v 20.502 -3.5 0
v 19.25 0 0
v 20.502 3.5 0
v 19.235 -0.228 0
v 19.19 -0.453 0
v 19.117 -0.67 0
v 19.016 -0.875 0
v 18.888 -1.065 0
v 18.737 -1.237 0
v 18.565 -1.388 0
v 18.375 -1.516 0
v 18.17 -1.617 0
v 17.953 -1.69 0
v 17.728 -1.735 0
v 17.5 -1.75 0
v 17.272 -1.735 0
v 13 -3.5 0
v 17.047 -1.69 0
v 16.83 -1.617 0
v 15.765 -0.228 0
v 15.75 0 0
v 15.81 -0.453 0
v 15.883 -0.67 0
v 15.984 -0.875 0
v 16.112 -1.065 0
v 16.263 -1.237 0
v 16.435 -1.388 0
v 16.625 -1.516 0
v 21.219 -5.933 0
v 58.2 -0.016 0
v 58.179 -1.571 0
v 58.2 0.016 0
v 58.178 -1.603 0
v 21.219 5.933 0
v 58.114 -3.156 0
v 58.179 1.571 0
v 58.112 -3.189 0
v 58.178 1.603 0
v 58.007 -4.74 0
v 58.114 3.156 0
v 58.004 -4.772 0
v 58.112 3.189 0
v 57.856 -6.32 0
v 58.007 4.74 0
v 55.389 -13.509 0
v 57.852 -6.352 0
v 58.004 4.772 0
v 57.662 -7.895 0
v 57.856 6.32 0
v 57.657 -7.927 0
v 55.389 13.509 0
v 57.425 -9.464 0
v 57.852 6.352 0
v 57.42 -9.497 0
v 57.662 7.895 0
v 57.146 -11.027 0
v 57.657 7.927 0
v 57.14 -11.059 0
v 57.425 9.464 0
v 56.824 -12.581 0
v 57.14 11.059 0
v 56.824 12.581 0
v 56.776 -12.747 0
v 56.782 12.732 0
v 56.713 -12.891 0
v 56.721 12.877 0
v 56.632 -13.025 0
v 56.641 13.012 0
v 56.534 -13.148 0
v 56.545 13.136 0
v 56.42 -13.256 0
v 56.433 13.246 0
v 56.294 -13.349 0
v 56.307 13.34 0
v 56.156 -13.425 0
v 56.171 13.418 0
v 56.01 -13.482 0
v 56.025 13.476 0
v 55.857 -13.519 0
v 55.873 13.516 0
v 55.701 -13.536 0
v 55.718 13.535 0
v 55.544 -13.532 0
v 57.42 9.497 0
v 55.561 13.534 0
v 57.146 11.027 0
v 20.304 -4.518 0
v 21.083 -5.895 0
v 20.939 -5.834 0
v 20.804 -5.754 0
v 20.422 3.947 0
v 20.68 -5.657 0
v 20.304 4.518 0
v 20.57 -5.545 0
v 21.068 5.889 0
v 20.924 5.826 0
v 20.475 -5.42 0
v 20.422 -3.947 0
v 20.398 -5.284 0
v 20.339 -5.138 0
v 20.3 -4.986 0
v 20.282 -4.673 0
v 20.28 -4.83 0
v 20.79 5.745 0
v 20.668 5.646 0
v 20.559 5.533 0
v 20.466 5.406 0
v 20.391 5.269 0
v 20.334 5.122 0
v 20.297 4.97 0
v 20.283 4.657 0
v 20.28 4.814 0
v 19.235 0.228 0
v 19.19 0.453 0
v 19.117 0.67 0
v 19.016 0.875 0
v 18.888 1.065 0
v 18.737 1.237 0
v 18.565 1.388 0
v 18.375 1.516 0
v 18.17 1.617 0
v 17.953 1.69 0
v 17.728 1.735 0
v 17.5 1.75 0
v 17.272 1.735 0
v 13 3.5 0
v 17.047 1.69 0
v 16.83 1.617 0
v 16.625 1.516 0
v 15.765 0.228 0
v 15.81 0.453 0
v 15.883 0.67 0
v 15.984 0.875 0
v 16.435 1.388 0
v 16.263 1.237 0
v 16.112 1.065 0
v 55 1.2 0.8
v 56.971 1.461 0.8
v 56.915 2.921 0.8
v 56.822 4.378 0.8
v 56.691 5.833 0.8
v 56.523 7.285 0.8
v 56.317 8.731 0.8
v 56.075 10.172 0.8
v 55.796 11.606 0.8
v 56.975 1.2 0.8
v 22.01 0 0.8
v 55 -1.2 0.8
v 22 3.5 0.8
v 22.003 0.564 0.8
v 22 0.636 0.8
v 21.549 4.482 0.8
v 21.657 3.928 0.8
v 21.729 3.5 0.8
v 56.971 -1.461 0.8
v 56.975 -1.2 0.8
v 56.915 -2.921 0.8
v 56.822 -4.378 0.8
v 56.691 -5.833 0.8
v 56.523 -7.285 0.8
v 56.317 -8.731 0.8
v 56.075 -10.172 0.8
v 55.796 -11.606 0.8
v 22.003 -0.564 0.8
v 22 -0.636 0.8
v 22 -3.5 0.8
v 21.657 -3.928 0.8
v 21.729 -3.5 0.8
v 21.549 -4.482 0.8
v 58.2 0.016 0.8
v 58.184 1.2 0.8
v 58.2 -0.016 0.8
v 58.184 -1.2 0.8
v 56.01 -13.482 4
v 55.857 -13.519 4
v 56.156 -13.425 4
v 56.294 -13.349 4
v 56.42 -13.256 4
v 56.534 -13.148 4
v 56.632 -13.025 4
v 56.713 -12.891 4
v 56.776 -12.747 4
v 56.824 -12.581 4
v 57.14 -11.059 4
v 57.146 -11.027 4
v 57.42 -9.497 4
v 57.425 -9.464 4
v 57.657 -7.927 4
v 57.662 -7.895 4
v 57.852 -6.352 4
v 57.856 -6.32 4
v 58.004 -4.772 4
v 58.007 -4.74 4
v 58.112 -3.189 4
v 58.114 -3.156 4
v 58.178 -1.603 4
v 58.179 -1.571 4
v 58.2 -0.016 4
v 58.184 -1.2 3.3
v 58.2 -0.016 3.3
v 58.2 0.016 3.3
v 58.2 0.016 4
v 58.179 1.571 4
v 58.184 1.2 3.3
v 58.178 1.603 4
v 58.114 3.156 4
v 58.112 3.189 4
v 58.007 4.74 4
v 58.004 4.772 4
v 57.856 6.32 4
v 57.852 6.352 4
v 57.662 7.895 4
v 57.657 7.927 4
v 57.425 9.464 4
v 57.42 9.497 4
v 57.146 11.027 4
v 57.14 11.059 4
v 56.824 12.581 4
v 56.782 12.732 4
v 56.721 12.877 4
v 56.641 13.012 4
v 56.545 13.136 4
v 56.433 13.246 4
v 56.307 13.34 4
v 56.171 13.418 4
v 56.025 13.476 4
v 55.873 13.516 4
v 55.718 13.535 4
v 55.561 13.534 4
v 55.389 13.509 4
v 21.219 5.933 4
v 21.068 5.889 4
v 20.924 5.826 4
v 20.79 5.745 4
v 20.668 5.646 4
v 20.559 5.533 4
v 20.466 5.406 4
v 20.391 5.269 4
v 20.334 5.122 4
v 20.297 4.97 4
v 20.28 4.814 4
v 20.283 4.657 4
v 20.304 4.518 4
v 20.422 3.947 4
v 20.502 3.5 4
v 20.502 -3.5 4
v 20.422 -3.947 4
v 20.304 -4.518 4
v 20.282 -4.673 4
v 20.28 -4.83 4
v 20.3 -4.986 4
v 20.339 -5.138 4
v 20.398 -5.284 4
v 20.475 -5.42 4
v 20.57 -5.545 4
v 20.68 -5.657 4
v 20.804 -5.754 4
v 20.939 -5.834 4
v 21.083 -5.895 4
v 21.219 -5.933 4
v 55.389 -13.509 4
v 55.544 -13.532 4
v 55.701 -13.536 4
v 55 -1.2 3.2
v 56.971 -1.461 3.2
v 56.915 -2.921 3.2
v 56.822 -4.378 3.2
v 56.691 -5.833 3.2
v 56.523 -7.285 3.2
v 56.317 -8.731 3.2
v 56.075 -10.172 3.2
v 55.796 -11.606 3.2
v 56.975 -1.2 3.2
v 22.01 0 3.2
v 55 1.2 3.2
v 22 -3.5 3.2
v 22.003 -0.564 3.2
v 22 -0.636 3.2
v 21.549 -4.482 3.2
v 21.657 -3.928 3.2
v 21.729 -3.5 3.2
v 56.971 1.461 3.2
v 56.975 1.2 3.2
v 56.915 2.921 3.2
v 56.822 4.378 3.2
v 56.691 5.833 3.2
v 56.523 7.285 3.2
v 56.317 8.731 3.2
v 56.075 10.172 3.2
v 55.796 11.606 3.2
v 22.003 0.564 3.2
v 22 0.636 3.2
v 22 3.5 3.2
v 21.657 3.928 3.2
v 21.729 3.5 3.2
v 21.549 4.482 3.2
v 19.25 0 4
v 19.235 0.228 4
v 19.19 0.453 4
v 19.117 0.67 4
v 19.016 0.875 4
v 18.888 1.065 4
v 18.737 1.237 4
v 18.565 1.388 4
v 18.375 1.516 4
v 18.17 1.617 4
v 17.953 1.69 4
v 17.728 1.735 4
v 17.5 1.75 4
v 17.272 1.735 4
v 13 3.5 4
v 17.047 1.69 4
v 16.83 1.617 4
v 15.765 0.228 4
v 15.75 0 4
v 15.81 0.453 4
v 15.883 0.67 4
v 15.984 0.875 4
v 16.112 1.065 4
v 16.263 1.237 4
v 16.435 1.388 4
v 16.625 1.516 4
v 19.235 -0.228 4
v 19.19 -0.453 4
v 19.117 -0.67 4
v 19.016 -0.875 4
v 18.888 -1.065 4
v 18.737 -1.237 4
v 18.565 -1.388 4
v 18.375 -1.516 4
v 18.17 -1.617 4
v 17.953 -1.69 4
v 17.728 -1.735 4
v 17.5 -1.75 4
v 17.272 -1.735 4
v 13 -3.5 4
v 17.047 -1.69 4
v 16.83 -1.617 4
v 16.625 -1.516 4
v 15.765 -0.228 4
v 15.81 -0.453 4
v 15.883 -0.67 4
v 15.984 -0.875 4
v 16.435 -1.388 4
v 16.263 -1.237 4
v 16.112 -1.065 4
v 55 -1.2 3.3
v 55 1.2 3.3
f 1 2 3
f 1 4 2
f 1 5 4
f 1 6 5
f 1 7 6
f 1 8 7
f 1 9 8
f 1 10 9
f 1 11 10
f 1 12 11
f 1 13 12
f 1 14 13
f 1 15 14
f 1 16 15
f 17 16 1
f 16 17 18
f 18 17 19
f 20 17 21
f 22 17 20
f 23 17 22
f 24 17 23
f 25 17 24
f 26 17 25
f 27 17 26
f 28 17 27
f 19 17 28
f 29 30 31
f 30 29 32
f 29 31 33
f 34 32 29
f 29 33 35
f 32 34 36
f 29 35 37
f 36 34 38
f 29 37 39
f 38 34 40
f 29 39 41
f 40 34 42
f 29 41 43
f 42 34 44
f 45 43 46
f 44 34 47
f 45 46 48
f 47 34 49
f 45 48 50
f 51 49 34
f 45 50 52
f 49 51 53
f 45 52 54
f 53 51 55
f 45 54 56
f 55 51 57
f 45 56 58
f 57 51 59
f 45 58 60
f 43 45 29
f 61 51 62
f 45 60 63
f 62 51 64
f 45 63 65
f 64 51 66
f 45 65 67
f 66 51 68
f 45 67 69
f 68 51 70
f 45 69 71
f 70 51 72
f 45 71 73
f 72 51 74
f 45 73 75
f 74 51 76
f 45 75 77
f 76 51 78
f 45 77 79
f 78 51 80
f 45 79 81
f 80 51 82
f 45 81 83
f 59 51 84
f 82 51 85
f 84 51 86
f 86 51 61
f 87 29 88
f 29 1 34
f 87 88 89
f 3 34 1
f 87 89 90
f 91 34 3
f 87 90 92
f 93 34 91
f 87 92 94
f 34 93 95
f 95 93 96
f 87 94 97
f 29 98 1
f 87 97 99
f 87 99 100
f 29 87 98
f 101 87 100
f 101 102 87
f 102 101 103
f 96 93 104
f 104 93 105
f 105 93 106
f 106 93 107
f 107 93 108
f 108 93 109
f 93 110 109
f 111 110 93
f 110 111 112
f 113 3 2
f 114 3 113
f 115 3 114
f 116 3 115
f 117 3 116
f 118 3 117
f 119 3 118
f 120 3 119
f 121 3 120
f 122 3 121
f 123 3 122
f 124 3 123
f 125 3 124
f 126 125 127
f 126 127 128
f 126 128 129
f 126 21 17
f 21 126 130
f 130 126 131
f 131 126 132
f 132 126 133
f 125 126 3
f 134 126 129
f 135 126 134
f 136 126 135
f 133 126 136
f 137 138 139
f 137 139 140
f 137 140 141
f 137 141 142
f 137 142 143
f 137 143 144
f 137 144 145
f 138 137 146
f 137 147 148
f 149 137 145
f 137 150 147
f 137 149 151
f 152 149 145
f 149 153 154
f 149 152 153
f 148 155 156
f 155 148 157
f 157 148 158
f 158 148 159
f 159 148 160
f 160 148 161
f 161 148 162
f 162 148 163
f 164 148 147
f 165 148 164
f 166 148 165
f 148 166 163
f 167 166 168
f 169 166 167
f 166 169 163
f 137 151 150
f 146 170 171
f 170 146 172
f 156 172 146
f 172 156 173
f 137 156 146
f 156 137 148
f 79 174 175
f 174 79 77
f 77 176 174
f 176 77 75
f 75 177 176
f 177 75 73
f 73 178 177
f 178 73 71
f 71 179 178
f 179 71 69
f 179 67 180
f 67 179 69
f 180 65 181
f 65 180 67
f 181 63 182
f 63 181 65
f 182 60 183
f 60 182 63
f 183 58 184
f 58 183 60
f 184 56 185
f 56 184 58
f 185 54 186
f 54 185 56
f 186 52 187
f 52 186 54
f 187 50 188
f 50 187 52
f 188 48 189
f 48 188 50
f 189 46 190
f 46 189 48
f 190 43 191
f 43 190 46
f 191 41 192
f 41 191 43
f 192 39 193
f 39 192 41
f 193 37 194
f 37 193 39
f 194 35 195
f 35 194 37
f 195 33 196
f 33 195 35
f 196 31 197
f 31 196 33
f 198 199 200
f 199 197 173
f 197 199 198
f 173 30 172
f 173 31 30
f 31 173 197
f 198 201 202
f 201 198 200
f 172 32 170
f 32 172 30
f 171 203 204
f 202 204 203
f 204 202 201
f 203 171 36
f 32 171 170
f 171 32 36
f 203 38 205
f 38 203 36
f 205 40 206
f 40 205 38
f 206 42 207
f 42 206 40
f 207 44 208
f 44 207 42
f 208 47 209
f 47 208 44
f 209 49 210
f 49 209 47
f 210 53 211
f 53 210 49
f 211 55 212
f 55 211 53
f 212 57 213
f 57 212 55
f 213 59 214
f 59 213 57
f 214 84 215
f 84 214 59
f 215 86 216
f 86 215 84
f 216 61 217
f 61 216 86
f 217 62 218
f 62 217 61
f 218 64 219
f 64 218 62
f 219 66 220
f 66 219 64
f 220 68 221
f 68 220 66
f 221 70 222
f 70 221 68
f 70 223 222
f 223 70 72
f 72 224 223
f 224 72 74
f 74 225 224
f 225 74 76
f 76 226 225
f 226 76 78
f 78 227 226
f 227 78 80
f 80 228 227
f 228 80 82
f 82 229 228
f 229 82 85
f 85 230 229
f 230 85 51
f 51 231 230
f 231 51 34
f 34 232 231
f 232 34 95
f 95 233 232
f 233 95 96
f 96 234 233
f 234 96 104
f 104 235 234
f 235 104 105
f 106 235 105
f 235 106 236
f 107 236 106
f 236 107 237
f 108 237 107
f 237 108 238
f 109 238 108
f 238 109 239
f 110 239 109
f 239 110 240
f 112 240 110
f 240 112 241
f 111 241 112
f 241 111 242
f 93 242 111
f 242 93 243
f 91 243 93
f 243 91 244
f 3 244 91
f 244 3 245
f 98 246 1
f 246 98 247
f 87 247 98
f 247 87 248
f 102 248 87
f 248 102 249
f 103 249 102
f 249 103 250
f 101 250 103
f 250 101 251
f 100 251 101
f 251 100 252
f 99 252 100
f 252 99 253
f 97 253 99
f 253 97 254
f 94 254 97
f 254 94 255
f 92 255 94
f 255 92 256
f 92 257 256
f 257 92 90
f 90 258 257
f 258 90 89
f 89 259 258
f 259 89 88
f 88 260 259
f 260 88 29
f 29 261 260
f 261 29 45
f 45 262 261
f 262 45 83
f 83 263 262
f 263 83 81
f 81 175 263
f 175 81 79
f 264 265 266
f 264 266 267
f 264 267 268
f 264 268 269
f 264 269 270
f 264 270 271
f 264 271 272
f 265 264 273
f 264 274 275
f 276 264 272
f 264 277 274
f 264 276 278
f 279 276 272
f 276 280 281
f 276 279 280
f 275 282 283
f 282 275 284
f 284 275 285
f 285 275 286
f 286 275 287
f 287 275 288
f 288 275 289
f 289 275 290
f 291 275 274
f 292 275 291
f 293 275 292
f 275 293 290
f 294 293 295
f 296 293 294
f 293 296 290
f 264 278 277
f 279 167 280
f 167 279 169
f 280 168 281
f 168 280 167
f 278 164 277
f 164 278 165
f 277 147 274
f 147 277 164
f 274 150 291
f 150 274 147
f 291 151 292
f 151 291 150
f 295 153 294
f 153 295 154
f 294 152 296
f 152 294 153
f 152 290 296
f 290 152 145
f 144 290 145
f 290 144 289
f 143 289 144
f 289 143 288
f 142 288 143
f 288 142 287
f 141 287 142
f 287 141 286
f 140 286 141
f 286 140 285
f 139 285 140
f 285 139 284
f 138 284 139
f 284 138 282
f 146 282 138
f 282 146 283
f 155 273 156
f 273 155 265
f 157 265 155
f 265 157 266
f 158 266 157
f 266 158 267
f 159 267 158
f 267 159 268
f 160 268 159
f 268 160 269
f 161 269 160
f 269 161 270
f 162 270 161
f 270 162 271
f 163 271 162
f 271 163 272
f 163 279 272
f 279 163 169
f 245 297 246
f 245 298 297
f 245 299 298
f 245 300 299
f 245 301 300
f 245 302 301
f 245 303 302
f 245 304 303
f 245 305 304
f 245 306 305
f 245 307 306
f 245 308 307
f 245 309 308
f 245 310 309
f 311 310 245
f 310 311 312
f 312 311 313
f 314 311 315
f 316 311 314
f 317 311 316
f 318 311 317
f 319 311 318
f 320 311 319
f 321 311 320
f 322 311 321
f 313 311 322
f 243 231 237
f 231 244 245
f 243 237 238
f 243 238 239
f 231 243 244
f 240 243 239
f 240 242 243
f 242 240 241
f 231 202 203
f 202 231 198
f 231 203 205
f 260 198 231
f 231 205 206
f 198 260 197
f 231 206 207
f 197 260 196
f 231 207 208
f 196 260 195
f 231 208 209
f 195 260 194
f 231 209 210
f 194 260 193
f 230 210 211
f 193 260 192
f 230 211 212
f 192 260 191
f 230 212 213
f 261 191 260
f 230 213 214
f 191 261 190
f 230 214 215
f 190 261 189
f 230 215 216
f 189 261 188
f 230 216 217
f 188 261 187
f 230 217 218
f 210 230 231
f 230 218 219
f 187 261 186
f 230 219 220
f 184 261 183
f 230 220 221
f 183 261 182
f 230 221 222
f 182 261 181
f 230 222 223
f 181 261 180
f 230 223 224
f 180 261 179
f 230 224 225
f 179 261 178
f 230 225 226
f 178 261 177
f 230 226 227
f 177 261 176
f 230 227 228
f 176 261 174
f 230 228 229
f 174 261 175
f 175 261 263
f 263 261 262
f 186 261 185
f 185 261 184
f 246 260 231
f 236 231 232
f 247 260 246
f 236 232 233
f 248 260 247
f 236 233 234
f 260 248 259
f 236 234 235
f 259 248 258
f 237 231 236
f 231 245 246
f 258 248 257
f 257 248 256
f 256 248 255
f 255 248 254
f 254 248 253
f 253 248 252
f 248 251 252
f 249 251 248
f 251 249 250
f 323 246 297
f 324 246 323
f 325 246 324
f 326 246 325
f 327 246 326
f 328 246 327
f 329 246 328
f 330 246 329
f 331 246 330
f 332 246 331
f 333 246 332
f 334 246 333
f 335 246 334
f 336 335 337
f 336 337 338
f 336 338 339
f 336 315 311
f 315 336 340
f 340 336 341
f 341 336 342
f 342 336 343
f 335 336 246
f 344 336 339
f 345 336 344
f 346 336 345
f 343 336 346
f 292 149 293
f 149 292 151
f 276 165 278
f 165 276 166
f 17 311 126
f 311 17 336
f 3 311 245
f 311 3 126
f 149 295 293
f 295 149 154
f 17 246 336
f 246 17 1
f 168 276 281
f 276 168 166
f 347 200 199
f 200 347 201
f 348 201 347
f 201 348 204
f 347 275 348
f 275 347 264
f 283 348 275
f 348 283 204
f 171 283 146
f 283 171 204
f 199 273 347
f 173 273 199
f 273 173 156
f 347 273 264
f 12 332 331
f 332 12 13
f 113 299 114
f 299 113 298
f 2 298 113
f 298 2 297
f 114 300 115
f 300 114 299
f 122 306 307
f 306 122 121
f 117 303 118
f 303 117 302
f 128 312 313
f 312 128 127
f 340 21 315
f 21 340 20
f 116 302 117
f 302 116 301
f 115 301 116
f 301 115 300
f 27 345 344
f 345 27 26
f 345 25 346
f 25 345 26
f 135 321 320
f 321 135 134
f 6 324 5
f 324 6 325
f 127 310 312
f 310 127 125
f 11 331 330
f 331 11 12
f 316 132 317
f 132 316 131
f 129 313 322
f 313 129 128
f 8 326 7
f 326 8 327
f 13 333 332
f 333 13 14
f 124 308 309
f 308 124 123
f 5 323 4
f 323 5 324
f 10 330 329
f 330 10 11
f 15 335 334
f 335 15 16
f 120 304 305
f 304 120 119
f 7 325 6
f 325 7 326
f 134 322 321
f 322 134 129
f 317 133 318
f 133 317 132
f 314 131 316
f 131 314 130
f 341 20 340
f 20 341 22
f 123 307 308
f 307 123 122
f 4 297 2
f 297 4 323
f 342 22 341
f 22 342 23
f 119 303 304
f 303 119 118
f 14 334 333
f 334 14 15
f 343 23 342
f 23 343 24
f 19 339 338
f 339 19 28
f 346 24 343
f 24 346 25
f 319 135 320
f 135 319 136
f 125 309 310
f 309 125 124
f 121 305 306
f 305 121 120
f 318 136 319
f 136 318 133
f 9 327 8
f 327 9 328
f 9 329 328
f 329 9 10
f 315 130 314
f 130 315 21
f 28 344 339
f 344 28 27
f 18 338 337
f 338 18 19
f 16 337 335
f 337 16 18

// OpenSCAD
// file: parameters.scad
// =============================================================================
// Gen-X Vernier flux-claw dual-gap AFPM — WOUND-AWARE (HARD GATE)
// Dual-rotor + vernier 8+8 Ø20 + Ø5 flux claws; evolution of Gen-U
// =============================================================================

wire_awg            = 26;
wire_od             = 0.45;
turns               = 135;
fill                = 0.70;
layers_per_face     = 2;
wind_build_axial    = layers_per_face * wire_od * fill;   // 0.63
wind_build_radial   = 3 * wire_od * fill;                 // 0.945

coil_id_r           = 22.0;
coil_od_r           = 57.0;
span_deg            = 25.0;     // 12 stations; vernier vs 16-pole equiv
former_web          = 2.4;
flange_t            = 0.80;
wall                = 1.2;
slot_w              = 2.4;
mount_hole          = 3.5;
tab_len             = 7.0;

former_bare_h       = former_web + 2 * flange_t;            // 4.0
coil_envelope_h     = former_bare_h + 2 * wind_build_axial; // 5.26

run_clear           = 0.75;
gap_spacer_h        = run_clear + wind_build_axial;         // 1.38
m2m                 = coil_envelope_h + 2 * run_clear;      // 6.76 (≤6.8)

coil_stations       = 12;
bay_r_in            = coil_id_r - 2.0 - wind_build_radial;
bay_r_out           = coil_od_r + 2.0 + wind_build_radial;
bay_span            = span_deg + 4.0;
bay_offset          = 2.0;
stator_thick        = former_bare_h;
stator_od           = 156.0;
shaft_clear_stator  = 36.0;
coil_mount_r        = 28.0;

// Dual rotors: 8+8 Ø20 vernier poles + 24+24 Ø5 flux claws / edge assists
large_pocket_d      = 20.3;
small_pocket_d      = 5.3;
pocket_h            = 5.2;
large_n             = 8;
R_large             = 50.0;
R_claw_inner        = 36.0;
R_claw_mid          = 50.0;
R_claw_outer        = 64.0;
carrier_od          = 152.0;
carrier_thick       = 7.5;
hub_h               = 10.0;
hub_od              = 30.0;
rotor_b_offset_deg  = 22.5;

shaft_bore          = 8.35;
bearing_d           = 21.85;
bearing_h           = 7.2;
m3_clear            = 3.5;
bolt_r_inner        = 36.0;
bolt_n_inner        = 6;
flange_bolt_r       = 72.0;
flange_bolt_n       = 6;
brace_r             = 68.0;
brace_d             = 4.3;
brace_n             = 4;

spacer_pad_od       = 14.0;
spacer_pad_id       = m3_clear;
endbell_od          = 156.0;
endbell_thick       = 8.0;
endbell_shaft_clear = 10.0;

$fn = 64;
// main file
// Gen-X pancake former — print ×12
// WOUND: wind_build_axial=0.63, coil_envelope_h=5.26, magnet↔wound=0.75
include <parameters.scad>;
$fn = 48;

module sector_2d(r_in, r_out, ang) {
    polygon([
        for (a = [-ang/2 : ang/16 : ang/2]) [r_in*cos(a), r_in*sin(a)],
        for (a = [ang/2 : -ang/16 : -ang/2]) [r_out*cos(a), r_out*sin(a)]
    ]);
}
module flange() {
    linear_extrude(flange_t) offset(r=wall) sector_2d(coil_id_r, coil_od_r, span_deg);
}
difference() {
    union() {
        flange();
        translate([0, 0, flange_t])
            linear_extrude(former_web)
                difference() {
                    offset(r=wall) sector_2d(coil_id_r, coil_od_r, span_deg);
                    sector_2d(coil_id_r + 0.01, coil_od_r - 0.01, span_deg - 1.5);
                }
        translate([0, 0, flange_t + former_web]) flange();
        translate([coil_id_r - tab_len - 2, -3.5, 0])
            cube([tab_len + 2, 7, former_bare_h]);
    }
    translate([coil_od_r - 2, -slot_w/2, flange_t])
        cube([wall + 4, slot_w, former_web + 0.1]);
    translate([coil_id_r - tab_len/2 - 1, 0, -0.1])
        cylinder(d=mount_hole, h=former_bare_h + 1);
}
